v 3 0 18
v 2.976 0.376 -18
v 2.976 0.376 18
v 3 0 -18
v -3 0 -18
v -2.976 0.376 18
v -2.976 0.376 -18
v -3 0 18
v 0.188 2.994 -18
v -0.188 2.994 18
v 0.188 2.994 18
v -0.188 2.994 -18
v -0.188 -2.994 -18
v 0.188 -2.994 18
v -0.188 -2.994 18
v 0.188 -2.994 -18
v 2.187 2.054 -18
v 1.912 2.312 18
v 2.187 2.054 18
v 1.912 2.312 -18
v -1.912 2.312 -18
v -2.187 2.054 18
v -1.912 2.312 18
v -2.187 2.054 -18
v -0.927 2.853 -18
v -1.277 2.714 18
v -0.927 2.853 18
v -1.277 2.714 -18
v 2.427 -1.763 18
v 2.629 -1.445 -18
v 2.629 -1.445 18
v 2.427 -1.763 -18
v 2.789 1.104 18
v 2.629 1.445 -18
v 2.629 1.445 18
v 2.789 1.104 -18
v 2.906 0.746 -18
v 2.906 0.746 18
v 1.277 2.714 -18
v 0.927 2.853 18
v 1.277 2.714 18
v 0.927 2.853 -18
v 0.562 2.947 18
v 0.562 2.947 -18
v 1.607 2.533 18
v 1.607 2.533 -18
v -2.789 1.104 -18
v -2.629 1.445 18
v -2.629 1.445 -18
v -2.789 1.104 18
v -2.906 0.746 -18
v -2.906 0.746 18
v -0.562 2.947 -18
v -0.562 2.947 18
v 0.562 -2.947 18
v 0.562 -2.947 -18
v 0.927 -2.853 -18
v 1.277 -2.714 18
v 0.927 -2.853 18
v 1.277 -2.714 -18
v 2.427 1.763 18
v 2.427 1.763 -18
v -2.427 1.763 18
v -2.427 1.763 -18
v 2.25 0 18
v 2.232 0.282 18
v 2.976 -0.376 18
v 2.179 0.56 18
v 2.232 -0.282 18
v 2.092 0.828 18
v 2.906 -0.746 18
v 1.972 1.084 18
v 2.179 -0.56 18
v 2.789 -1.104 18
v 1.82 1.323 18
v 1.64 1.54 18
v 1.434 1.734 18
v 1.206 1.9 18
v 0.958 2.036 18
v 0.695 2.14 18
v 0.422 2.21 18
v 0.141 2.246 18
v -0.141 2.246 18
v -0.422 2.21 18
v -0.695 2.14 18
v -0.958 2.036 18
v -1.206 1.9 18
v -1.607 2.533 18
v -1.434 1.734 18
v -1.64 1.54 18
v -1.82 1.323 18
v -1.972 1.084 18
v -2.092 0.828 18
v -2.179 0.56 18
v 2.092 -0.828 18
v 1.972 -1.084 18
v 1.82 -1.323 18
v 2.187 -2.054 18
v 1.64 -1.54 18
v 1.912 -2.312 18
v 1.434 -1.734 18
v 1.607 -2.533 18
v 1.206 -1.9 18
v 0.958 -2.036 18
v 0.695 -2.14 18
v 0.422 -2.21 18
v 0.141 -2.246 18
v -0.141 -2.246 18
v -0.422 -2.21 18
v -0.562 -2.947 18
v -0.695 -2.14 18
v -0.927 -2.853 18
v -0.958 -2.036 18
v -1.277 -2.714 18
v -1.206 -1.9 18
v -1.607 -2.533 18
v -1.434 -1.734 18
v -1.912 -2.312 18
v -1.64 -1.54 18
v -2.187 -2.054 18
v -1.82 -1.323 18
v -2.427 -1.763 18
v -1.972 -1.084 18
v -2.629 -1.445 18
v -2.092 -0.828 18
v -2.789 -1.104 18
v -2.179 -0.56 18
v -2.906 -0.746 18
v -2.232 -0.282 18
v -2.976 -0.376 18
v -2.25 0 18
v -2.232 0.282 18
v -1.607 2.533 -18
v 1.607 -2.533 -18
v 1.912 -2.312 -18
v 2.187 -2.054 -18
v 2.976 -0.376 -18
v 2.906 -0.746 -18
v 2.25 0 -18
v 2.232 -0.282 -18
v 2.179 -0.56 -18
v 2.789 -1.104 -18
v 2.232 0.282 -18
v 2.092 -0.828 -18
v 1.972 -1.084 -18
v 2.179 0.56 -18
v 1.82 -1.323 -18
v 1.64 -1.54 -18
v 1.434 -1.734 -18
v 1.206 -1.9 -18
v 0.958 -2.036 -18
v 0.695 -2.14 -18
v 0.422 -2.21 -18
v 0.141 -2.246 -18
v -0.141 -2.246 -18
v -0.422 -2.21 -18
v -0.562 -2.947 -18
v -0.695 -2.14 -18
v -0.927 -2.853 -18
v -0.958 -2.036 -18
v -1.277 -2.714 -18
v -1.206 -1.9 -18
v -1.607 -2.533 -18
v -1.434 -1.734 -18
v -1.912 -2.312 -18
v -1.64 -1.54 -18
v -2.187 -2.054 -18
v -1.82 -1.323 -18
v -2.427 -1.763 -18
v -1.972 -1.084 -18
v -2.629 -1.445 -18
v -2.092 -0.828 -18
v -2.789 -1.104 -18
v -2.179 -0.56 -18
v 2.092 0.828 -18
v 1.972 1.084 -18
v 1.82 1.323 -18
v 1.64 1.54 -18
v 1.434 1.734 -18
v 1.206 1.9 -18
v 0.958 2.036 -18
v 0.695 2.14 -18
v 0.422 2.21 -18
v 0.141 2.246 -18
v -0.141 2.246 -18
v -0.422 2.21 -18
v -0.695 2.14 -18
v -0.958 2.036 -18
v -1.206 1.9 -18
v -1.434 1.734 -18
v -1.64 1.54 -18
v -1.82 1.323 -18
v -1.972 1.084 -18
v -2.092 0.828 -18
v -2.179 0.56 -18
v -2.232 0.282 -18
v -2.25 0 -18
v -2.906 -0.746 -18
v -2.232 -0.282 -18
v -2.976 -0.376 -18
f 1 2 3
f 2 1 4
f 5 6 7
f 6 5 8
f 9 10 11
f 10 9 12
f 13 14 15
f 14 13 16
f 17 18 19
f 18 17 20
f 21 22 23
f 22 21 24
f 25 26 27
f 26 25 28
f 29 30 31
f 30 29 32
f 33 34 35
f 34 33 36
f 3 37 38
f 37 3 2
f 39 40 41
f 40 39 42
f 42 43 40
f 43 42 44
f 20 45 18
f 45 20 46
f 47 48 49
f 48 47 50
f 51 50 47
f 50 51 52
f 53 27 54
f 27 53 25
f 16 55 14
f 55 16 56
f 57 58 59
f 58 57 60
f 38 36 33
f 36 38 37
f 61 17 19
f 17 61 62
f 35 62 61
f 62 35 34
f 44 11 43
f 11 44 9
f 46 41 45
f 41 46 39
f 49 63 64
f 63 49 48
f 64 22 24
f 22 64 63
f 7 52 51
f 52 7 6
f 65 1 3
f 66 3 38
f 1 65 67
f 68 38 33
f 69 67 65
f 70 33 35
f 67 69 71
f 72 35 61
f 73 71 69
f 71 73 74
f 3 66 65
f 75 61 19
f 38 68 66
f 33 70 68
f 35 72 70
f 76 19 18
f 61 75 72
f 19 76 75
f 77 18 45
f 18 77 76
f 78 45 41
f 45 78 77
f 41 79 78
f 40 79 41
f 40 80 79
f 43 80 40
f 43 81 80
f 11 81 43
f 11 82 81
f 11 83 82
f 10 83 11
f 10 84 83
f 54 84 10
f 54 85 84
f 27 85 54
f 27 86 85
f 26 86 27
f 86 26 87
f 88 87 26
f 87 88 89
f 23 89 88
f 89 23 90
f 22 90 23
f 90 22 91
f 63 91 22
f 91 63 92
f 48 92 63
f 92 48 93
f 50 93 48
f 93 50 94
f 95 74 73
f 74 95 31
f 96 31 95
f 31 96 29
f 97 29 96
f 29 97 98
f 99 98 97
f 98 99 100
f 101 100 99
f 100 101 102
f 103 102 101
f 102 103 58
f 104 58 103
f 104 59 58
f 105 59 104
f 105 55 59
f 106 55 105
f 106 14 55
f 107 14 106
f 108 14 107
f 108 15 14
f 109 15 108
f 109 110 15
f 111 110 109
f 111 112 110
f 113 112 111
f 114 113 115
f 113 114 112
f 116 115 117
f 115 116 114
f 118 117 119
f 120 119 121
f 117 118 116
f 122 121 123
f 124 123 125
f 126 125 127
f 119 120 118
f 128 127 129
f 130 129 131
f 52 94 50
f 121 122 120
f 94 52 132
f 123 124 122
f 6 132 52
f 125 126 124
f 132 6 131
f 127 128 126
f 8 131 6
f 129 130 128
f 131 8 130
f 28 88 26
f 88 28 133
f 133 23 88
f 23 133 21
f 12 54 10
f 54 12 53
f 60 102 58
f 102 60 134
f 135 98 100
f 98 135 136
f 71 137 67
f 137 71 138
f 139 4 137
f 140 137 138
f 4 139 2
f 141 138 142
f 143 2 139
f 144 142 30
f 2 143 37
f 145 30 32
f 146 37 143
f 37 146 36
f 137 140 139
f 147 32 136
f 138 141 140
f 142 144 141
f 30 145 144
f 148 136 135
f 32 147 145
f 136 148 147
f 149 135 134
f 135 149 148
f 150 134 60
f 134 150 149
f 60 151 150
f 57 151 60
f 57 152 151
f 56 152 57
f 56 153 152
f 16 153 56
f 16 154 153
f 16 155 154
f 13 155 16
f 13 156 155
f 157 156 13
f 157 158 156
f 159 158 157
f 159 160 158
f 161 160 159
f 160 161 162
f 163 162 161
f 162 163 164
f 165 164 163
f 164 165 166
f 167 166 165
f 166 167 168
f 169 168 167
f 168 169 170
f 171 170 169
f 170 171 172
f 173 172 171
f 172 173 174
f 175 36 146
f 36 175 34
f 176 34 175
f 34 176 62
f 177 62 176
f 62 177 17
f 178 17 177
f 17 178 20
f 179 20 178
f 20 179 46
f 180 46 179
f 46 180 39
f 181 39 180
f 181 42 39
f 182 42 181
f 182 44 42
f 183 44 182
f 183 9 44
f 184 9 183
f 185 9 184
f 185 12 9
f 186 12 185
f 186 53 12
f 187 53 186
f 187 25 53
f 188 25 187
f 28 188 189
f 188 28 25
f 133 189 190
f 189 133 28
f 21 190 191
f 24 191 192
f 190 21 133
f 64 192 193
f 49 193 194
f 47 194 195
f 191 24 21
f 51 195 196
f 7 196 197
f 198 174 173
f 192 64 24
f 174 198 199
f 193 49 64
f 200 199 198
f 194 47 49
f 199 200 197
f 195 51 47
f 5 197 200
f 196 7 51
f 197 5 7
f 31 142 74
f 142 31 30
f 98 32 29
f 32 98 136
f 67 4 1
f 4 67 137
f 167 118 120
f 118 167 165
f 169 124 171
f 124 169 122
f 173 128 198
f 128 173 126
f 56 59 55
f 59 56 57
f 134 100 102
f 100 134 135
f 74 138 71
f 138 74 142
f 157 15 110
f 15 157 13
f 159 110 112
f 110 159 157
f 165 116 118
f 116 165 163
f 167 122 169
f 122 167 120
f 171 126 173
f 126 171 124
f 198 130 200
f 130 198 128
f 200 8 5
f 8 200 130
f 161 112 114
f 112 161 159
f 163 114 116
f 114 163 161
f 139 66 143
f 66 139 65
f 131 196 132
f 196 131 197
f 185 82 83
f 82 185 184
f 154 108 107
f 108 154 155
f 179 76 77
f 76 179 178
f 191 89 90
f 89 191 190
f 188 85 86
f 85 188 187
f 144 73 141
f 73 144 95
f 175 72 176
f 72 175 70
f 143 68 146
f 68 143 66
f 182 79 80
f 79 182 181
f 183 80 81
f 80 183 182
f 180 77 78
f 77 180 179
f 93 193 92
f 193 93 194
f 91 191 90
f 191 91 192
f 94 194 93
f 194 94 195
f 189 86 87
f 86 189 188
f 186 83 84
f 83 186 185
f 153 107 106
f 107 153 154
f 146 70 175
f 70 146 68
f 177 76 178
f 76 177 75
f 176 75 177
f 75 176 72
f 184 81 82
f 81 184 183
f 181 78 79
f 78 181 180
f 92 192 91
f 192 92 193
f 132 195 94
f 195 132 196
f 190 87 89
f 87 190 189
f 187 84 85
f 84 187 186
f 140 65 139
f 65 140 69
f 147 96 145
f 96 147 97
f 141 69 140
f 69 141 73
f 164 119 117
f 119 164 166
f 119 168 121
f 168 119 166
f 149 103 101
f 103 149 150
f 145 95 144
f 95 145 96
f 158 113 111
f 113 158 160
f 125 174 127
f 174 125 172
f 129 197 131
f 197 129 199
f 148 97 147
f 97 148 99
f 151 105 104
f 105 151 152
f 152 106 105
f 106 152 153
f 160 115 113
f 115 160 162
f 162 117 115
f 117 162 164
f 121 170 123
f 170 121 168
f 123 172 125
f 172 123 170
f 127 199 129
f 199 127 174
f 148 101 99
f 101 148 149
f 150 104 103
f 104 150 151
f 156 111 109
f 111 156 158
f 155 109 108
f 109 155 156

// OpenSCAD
$fn = 50;


difference() {
	union() {
		translate(v = [0, 0, -18.0000000000]) {
			cylinder(h = 36, r = 3.0000000000);
		}
	}
	union() {
		translate(v = [0, 0, -100.0000000000]) {
			cylinder(h = 200, r = 2.2500000000);
		}
	}
}
